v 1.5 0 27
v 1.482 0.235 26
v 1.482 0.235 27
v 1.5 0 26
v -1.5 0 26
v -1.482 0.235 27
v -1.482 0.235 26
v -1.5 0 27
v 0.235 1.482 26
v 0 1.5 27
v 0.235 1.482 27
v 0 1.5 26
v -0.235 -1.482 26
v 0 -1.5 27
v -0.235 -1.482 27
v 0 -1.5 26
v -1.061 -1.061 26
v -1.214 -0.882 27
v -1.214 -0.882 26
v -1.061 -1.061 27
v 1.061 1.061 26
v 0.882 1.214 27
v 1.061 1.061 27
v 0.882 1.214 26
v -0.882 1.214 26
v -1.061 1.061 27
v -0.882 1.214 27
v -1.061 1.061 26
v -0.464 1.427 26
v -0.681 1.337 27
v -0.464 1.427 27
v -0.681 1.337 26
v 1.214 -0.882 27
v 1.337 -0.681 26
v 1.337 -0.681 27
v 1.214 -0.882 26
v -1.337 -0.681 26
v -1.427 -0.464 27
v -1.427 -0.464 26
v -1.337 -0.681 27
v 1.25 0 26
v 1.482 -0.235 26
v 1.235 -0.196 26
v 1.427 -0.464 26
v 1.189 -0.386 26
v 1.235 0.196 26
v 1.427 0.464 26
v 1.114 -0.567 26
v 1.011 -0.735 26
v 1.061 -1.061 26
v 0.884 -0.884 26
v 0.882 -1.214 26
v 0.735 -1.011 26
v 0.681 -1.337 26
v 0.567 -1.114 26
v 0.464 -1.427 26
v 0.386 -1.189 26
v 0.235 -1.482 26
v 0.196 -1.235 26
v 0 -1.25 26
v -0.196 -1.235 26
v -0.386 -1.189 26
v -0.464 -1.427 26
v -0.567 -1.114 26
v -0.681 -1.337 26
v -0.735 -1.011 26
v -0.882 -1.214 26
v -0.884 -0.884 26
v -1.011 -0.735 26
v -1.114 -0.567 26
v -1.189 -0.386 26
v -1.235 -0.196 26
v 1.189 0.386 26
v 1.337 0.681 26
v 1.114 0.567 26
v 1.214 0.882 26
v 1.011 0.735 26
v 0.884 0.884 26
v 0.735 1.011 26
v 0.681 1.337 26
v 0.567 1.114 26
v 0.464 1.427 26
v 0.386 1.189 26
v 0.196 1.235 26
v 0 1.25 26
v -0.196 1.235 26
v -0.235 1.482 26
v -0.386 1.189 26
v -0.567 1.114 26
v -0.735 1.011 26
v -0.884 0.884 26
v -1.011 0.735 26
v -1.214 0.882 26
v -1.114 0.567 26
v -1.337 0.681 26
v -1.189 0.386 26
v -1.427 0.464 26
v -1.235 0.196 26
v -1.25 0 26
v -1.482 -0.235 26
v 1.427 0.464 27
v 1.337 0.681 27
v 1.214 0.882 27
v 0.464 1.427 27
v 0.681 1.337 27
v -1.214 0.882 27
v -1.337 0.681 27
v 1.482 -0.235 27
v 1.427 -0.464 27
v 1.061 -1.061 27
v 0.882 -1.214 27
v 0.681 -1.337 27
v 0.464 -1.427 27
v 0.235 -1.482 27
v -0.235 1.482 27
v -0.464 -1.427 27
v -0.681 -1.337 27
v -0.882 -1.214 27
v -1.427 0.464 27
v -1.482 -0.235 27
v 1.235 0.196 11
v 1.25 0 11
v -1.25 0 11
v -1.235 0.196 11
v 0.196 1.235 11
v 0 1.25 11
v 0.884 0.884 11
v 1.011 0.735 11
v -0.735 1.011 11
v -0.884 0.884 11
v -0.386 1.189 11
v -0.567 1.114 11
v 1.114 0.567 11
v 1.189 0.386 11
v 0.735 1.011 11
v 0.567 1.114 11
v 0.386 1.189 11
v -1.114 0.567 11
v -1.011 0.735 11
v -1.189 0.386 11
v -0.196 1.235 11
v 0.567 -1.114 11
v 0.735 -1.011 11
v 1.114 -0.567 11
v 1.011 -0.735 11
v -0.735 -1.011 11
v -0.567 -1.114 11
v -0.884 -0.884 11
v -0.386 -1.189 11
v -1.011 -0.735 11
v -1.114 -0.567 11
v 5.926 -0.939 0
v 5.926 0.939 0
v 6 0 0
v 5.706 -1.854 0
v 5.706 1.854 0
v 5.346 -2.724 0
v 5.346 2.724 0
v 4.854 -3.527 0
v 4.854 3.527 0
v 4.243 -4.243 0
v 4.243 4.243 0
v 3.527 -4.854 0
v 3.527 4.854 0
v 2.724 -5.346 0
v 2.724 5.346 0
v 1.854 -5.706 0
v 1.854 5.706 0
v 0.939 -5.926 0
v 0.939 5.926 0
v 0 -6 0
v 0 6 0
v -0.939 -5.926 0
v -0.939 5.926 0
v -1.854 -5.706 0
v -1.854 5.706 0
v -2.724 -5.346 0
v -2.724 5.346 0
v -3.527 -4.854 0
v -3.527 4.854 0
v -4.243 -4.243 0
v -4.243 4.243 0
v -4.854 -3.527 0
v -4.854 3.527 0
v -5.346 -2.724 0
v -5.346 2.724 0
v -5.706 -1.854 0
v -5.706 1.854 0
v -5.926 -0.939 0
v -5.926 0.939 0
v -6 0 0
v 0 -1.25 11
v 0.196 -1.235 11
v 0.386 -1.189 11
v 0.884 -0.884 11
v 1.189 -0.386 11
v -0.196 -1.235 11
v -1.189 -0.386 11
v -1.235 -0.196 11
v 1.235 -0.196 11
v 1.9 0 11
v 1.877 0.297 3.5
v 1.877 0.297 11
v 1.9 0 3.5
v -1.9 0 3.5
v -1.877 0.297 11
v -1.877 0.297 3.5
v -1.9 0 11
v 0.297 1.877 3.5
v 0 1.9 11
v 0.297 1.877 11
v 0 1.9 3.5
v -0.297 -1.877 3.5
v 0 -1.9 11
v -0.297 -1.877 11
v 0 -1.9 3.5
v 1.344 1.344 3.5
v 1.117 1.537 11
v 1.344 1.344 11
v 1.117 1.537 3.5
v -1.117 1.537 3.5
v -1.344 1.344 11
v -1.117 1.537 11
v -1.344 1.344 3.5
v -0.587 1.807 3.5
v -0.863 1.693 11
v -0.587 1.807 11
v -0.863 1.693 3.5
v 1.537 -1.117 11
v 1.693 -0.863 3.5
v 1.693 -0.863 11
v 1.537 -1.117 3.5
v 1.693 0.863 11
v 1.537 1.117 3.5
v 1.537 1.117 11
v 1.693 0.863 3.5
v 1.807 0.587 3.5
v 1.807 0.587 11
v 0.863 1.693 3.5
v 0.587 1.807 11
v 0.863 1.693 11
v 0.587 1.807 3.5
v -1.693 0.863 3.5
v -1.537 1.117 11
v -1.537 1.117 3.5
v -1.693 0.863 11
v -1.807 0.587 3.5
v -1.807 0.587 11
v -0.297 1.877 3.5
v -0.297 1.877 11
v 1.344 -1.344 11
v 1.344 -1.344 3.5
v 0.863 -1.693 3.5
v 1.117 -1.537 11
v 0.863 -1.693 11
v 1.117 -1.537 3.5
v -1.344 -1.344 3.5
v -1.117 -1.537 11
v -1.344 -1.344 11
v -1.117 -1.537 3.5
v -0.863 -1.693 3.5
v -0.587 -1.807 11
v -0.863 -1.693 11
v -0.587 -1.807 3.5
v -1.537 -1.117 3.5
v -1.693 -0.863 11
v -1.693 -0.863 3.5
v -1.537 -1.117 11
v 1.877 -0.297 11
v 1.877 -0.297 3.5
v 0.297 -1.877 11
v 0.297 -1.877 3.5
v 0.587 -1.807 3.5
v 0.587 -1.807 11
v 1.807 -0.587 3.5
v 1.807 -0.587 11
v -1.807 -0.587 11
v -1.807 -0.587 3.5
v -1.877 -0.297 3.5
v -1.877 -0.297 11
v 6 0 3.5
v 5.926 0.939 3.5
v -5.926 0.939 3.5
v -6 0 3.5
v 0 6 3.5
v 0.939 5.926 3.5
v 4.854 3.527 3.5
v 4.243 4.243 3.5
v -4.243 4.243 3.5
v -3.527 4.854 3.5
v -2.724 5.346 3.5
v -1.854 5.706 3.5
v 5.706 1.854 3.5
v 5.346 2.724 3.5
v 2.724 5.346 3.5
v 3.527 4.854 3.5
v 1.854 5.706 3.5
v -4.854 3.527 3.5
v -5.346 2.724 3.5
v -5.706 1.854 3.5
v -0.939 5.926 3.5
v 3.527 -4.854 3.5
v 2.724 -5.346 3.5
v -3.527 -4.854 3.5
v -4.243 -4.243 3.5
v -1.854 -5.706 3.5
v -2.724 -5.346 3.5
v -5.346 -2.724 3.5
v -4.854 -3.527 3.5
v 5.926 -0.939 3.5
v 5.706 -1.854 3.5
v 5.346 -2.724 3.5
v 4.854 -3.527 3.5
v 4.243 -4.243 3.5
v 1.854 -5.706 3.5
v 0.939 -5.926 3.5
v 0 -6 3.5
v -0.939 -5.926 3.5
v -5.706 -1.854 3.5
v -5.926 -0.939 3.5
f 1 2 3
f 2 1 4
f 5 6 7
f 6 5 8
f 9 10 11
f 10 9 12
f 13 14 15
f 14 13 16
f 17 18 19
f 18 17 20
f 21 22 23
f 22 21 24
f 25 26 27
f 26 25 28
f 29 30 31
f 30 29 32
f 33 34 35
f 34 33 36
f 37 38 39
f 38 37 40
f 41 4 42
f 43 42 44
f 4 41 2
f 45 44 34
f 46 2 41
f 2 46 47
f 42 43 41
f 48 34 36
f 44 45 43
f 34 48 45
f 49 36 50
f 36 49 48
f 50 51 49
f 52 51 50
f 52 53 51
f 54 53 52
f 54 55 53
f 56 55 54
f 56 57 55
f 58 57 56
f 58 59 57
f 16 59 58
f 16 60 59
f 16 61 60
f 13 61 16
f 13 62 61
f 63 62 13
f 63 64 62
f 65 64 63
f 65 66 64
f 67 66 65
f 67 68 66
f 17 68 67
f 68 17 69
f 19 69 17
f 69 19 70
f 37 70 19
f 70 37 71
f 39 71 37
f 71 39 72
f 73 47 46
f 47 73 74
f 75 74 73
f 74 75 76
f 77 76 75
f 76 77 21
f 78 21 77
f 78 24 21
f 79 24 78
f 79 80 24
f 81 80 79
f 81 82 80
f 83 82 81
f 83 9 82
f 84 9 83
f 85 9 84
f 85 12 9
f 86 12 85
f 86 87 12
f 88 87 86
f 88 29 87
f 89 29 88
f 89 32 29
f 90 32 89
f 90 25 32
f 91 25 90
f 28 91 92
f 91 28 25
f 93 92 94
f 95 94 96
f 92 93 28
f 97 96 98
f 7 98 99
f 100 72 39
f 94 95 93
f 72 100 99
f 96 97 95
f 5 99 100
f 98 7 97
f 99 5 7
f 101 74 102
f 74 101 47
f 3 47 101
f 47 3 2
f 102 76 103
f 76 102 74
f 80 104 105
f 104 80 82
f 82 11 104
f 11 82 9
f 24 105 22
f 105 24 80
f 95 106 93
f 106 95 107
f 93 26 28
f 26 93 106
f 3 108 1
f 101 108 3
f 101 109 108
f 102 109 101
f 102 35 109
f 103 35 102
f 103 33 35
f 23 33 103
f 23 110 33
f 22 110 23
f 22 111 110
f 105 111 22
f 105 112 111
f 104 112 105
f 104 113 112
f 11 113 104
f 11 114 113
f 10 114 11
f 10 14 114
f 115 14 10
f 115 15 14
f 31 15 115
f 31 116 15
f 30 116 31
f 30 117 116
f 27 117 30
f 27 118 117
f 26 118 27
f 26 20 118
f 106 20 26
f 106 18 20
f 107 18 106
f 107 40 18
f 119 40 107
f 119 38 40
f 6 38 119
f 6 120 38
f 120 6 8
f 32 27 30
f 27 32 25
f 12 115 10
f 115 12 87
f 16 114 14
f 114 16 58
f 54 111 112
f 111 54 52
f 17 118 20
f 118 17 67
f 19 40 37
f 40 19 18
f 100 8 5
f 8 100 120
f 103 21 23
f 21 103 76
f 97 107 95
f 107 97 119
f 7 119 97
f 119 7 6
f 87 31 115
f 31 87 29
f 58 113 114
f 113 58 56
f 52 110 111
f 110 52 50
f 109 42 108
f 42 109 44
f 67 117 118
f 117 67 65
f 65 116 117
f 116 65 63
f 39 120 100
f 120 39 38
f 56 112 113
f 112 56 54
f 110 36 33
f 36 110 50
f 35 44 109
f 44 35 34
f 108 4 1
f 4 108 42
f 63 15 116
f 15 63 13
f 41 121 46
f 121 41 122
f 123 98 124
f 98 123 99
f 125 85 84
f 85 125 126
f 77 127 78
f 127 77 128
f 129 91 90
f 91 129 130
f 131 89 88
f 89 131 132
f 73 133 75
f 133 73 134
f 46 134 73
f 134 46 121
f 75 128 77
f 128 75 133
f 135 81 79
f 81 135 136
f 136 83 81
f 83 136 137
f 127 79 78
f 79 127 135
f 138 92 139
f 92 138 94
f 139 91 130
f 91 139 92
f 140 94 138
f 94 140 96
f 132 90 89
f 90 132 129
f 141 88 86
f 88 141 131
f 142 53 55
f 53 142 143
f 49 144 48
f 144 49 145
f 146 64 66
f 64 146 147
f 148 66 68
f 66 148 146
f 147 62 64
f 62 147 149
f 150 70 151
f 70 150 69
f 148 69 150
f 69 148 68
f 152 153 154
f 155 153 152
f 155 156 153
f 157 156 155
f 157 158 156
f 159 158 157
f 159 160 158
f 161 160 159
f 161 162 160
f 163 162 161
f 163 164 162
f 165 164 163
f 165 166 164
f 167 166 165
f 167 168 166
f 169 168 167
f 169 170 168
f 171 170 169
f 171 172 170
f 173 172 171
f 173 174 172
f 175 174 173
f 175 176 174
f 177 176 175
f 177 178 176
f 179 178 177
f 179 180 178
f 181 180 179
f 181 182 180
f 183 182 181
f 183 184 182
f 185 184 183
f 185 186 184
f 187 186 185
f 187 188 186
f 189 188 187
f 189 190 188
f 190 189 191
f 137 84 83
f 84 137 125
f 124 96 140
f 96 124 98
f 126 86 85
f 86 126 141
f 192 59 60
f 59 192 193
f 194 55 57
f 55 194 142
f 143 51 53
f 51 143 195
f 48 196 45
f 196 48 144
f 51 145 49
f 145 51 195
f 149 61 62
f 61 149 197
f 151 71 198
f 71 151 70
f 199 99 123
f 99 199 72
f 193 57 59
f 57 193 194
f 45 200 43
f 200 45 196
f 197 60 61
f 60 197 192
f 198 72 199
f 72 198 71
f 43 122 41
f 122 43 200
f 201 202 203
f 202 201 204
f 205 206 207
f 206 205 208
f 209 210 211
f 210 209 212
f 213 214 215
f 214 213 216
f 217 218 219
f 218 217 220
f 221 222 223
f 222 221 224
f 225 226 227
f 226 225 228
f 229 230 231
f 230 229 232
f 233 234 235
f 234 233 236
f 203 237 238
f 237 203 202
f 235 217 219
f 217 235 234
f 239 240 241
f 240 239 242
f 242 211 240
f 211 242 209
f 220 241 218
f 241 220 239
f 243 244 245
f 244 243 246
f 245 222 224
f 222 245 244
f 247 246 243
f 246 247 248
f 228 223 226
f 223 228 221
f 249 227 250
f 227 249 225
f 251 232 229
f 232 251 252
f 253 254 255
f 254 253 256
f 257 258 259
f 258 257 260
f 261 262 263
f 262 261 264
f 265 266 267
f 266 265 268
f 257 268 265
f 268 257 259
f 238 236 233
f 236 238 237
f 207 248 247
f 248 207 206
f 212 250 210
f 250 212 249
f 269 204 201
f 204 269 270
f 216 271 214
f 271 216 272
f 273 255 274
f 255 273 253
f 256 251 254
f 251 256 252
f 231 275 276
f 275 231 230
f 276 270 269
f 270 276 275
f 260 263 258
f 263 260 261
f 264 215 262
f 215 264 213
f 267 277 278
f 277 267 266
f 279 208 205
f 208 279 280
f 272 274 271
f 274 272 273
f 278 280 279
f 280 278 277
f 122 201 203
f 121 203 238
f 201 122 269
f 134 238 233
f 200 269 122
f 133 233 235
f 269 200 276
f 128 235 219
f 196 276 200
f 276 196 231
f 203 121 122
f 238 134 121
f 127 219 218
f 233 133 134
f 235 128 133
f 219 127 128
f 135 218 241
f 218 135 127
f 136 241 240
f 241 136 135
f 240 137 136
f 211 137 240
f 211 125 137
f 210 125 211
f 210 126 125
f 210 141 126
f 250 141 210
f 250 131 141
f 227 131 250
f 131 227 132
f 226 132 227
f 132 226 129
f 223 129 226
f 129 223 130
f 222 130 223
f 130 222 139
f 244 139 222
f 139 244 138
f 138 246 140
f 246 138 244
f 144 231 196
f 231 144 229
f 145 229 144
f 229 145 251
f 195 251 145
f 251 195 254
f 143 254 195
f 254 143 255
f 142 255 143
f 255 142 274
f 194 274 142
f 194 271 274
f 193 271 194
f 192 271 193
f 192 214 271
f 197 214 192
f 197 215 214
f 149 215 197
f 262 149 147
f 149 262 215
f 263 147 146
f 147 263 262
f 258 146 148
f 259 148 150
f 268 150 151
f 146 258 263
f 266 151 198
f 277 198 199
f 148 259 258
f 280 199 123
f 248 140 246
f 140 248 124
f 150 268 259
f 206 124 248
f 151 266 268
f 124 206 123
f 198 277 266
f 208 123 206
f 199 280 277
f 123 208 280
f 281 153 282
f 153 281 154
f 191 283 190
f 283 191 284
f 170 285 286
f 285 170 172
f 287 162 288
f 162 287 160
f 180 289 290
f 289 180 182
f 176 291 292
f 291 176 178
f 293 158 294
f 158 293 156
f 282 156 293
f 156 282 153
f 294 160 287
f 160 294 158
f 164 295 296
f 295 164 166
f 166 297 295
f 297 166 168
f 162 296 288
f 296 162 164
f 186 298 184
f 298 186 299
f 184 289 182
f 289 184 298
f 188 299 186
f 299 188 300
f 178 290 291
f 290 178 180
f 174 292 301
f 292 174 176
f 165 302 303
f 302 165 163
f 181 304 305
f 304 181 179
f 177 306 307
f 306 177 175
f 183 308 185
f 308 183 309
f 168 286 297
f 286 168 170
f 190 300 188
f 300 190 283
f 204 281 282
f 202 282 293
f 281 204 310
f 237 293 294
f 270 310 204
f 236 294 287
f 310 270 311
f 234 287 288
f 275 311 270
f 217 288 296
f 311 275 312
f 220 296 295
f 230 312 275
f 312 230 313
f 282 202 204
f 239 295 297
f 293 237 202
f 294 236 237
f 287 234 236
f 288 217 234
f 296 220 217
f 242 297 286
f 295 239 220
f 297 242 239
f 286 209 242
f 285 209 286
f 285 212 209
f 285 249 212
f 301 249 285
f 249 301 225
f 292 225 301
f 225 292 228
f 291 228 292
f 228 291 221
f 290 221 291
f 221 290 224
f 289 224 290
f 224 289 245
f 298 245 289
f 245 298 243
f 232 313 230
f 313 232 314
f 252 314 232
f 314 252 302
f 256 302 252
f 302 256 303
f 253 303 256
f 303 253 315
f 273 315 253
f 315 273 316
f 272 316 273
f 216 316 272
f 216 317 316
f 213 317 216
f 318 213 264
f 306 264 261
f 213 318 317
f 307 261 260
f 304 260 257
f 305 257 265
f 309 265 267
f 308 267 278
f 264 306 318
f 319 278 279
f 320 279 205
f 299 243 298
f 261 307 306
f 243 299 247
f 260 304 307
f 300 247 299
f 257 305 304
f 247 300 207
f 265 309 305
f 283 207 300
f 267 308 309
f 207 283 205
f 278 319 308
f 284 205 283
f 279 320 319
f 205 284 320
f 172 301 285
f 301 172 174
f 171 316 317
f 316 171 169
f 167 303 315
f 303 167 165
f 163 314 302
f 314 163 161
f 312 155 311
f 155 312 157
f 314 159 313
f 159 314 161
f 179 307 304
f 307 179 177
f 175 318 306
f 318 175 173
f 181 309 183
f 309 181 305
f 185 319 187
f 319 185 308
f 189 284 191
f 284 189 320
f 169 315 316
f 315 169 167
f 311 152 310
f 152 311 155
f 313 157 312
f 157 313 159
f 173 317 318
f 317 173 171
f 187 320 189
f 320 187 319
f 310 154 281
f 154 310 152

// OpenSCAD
// Tipp Kick Eckverbinder

module Knubbel() {
    rotate([0,0,0])
    translate([0,0,26])
    cylinder(d=3,h=1,$fn=40);
}

module Teller() {
    rotate([0,0,0])
    translate([0,0,0])
    cylinder(d=12,h=3.5,$fn=40);
}

module Stange_lang() {
    rotate([0,0,0])
    translate([0,0,0])
    cylinder(d=2.5,h=27,$fn=40);
}

module Stange_kurz() {
    rotate([0,0,0])
    translate([0,0,0])
    cylinder(d=3.8,h=11,$fn=40);
}

module Eckverbinder() {
    Knubbel();
    Stange_lang();
    Stange_kurz();
    Teller();
}

Eckverbinder();
